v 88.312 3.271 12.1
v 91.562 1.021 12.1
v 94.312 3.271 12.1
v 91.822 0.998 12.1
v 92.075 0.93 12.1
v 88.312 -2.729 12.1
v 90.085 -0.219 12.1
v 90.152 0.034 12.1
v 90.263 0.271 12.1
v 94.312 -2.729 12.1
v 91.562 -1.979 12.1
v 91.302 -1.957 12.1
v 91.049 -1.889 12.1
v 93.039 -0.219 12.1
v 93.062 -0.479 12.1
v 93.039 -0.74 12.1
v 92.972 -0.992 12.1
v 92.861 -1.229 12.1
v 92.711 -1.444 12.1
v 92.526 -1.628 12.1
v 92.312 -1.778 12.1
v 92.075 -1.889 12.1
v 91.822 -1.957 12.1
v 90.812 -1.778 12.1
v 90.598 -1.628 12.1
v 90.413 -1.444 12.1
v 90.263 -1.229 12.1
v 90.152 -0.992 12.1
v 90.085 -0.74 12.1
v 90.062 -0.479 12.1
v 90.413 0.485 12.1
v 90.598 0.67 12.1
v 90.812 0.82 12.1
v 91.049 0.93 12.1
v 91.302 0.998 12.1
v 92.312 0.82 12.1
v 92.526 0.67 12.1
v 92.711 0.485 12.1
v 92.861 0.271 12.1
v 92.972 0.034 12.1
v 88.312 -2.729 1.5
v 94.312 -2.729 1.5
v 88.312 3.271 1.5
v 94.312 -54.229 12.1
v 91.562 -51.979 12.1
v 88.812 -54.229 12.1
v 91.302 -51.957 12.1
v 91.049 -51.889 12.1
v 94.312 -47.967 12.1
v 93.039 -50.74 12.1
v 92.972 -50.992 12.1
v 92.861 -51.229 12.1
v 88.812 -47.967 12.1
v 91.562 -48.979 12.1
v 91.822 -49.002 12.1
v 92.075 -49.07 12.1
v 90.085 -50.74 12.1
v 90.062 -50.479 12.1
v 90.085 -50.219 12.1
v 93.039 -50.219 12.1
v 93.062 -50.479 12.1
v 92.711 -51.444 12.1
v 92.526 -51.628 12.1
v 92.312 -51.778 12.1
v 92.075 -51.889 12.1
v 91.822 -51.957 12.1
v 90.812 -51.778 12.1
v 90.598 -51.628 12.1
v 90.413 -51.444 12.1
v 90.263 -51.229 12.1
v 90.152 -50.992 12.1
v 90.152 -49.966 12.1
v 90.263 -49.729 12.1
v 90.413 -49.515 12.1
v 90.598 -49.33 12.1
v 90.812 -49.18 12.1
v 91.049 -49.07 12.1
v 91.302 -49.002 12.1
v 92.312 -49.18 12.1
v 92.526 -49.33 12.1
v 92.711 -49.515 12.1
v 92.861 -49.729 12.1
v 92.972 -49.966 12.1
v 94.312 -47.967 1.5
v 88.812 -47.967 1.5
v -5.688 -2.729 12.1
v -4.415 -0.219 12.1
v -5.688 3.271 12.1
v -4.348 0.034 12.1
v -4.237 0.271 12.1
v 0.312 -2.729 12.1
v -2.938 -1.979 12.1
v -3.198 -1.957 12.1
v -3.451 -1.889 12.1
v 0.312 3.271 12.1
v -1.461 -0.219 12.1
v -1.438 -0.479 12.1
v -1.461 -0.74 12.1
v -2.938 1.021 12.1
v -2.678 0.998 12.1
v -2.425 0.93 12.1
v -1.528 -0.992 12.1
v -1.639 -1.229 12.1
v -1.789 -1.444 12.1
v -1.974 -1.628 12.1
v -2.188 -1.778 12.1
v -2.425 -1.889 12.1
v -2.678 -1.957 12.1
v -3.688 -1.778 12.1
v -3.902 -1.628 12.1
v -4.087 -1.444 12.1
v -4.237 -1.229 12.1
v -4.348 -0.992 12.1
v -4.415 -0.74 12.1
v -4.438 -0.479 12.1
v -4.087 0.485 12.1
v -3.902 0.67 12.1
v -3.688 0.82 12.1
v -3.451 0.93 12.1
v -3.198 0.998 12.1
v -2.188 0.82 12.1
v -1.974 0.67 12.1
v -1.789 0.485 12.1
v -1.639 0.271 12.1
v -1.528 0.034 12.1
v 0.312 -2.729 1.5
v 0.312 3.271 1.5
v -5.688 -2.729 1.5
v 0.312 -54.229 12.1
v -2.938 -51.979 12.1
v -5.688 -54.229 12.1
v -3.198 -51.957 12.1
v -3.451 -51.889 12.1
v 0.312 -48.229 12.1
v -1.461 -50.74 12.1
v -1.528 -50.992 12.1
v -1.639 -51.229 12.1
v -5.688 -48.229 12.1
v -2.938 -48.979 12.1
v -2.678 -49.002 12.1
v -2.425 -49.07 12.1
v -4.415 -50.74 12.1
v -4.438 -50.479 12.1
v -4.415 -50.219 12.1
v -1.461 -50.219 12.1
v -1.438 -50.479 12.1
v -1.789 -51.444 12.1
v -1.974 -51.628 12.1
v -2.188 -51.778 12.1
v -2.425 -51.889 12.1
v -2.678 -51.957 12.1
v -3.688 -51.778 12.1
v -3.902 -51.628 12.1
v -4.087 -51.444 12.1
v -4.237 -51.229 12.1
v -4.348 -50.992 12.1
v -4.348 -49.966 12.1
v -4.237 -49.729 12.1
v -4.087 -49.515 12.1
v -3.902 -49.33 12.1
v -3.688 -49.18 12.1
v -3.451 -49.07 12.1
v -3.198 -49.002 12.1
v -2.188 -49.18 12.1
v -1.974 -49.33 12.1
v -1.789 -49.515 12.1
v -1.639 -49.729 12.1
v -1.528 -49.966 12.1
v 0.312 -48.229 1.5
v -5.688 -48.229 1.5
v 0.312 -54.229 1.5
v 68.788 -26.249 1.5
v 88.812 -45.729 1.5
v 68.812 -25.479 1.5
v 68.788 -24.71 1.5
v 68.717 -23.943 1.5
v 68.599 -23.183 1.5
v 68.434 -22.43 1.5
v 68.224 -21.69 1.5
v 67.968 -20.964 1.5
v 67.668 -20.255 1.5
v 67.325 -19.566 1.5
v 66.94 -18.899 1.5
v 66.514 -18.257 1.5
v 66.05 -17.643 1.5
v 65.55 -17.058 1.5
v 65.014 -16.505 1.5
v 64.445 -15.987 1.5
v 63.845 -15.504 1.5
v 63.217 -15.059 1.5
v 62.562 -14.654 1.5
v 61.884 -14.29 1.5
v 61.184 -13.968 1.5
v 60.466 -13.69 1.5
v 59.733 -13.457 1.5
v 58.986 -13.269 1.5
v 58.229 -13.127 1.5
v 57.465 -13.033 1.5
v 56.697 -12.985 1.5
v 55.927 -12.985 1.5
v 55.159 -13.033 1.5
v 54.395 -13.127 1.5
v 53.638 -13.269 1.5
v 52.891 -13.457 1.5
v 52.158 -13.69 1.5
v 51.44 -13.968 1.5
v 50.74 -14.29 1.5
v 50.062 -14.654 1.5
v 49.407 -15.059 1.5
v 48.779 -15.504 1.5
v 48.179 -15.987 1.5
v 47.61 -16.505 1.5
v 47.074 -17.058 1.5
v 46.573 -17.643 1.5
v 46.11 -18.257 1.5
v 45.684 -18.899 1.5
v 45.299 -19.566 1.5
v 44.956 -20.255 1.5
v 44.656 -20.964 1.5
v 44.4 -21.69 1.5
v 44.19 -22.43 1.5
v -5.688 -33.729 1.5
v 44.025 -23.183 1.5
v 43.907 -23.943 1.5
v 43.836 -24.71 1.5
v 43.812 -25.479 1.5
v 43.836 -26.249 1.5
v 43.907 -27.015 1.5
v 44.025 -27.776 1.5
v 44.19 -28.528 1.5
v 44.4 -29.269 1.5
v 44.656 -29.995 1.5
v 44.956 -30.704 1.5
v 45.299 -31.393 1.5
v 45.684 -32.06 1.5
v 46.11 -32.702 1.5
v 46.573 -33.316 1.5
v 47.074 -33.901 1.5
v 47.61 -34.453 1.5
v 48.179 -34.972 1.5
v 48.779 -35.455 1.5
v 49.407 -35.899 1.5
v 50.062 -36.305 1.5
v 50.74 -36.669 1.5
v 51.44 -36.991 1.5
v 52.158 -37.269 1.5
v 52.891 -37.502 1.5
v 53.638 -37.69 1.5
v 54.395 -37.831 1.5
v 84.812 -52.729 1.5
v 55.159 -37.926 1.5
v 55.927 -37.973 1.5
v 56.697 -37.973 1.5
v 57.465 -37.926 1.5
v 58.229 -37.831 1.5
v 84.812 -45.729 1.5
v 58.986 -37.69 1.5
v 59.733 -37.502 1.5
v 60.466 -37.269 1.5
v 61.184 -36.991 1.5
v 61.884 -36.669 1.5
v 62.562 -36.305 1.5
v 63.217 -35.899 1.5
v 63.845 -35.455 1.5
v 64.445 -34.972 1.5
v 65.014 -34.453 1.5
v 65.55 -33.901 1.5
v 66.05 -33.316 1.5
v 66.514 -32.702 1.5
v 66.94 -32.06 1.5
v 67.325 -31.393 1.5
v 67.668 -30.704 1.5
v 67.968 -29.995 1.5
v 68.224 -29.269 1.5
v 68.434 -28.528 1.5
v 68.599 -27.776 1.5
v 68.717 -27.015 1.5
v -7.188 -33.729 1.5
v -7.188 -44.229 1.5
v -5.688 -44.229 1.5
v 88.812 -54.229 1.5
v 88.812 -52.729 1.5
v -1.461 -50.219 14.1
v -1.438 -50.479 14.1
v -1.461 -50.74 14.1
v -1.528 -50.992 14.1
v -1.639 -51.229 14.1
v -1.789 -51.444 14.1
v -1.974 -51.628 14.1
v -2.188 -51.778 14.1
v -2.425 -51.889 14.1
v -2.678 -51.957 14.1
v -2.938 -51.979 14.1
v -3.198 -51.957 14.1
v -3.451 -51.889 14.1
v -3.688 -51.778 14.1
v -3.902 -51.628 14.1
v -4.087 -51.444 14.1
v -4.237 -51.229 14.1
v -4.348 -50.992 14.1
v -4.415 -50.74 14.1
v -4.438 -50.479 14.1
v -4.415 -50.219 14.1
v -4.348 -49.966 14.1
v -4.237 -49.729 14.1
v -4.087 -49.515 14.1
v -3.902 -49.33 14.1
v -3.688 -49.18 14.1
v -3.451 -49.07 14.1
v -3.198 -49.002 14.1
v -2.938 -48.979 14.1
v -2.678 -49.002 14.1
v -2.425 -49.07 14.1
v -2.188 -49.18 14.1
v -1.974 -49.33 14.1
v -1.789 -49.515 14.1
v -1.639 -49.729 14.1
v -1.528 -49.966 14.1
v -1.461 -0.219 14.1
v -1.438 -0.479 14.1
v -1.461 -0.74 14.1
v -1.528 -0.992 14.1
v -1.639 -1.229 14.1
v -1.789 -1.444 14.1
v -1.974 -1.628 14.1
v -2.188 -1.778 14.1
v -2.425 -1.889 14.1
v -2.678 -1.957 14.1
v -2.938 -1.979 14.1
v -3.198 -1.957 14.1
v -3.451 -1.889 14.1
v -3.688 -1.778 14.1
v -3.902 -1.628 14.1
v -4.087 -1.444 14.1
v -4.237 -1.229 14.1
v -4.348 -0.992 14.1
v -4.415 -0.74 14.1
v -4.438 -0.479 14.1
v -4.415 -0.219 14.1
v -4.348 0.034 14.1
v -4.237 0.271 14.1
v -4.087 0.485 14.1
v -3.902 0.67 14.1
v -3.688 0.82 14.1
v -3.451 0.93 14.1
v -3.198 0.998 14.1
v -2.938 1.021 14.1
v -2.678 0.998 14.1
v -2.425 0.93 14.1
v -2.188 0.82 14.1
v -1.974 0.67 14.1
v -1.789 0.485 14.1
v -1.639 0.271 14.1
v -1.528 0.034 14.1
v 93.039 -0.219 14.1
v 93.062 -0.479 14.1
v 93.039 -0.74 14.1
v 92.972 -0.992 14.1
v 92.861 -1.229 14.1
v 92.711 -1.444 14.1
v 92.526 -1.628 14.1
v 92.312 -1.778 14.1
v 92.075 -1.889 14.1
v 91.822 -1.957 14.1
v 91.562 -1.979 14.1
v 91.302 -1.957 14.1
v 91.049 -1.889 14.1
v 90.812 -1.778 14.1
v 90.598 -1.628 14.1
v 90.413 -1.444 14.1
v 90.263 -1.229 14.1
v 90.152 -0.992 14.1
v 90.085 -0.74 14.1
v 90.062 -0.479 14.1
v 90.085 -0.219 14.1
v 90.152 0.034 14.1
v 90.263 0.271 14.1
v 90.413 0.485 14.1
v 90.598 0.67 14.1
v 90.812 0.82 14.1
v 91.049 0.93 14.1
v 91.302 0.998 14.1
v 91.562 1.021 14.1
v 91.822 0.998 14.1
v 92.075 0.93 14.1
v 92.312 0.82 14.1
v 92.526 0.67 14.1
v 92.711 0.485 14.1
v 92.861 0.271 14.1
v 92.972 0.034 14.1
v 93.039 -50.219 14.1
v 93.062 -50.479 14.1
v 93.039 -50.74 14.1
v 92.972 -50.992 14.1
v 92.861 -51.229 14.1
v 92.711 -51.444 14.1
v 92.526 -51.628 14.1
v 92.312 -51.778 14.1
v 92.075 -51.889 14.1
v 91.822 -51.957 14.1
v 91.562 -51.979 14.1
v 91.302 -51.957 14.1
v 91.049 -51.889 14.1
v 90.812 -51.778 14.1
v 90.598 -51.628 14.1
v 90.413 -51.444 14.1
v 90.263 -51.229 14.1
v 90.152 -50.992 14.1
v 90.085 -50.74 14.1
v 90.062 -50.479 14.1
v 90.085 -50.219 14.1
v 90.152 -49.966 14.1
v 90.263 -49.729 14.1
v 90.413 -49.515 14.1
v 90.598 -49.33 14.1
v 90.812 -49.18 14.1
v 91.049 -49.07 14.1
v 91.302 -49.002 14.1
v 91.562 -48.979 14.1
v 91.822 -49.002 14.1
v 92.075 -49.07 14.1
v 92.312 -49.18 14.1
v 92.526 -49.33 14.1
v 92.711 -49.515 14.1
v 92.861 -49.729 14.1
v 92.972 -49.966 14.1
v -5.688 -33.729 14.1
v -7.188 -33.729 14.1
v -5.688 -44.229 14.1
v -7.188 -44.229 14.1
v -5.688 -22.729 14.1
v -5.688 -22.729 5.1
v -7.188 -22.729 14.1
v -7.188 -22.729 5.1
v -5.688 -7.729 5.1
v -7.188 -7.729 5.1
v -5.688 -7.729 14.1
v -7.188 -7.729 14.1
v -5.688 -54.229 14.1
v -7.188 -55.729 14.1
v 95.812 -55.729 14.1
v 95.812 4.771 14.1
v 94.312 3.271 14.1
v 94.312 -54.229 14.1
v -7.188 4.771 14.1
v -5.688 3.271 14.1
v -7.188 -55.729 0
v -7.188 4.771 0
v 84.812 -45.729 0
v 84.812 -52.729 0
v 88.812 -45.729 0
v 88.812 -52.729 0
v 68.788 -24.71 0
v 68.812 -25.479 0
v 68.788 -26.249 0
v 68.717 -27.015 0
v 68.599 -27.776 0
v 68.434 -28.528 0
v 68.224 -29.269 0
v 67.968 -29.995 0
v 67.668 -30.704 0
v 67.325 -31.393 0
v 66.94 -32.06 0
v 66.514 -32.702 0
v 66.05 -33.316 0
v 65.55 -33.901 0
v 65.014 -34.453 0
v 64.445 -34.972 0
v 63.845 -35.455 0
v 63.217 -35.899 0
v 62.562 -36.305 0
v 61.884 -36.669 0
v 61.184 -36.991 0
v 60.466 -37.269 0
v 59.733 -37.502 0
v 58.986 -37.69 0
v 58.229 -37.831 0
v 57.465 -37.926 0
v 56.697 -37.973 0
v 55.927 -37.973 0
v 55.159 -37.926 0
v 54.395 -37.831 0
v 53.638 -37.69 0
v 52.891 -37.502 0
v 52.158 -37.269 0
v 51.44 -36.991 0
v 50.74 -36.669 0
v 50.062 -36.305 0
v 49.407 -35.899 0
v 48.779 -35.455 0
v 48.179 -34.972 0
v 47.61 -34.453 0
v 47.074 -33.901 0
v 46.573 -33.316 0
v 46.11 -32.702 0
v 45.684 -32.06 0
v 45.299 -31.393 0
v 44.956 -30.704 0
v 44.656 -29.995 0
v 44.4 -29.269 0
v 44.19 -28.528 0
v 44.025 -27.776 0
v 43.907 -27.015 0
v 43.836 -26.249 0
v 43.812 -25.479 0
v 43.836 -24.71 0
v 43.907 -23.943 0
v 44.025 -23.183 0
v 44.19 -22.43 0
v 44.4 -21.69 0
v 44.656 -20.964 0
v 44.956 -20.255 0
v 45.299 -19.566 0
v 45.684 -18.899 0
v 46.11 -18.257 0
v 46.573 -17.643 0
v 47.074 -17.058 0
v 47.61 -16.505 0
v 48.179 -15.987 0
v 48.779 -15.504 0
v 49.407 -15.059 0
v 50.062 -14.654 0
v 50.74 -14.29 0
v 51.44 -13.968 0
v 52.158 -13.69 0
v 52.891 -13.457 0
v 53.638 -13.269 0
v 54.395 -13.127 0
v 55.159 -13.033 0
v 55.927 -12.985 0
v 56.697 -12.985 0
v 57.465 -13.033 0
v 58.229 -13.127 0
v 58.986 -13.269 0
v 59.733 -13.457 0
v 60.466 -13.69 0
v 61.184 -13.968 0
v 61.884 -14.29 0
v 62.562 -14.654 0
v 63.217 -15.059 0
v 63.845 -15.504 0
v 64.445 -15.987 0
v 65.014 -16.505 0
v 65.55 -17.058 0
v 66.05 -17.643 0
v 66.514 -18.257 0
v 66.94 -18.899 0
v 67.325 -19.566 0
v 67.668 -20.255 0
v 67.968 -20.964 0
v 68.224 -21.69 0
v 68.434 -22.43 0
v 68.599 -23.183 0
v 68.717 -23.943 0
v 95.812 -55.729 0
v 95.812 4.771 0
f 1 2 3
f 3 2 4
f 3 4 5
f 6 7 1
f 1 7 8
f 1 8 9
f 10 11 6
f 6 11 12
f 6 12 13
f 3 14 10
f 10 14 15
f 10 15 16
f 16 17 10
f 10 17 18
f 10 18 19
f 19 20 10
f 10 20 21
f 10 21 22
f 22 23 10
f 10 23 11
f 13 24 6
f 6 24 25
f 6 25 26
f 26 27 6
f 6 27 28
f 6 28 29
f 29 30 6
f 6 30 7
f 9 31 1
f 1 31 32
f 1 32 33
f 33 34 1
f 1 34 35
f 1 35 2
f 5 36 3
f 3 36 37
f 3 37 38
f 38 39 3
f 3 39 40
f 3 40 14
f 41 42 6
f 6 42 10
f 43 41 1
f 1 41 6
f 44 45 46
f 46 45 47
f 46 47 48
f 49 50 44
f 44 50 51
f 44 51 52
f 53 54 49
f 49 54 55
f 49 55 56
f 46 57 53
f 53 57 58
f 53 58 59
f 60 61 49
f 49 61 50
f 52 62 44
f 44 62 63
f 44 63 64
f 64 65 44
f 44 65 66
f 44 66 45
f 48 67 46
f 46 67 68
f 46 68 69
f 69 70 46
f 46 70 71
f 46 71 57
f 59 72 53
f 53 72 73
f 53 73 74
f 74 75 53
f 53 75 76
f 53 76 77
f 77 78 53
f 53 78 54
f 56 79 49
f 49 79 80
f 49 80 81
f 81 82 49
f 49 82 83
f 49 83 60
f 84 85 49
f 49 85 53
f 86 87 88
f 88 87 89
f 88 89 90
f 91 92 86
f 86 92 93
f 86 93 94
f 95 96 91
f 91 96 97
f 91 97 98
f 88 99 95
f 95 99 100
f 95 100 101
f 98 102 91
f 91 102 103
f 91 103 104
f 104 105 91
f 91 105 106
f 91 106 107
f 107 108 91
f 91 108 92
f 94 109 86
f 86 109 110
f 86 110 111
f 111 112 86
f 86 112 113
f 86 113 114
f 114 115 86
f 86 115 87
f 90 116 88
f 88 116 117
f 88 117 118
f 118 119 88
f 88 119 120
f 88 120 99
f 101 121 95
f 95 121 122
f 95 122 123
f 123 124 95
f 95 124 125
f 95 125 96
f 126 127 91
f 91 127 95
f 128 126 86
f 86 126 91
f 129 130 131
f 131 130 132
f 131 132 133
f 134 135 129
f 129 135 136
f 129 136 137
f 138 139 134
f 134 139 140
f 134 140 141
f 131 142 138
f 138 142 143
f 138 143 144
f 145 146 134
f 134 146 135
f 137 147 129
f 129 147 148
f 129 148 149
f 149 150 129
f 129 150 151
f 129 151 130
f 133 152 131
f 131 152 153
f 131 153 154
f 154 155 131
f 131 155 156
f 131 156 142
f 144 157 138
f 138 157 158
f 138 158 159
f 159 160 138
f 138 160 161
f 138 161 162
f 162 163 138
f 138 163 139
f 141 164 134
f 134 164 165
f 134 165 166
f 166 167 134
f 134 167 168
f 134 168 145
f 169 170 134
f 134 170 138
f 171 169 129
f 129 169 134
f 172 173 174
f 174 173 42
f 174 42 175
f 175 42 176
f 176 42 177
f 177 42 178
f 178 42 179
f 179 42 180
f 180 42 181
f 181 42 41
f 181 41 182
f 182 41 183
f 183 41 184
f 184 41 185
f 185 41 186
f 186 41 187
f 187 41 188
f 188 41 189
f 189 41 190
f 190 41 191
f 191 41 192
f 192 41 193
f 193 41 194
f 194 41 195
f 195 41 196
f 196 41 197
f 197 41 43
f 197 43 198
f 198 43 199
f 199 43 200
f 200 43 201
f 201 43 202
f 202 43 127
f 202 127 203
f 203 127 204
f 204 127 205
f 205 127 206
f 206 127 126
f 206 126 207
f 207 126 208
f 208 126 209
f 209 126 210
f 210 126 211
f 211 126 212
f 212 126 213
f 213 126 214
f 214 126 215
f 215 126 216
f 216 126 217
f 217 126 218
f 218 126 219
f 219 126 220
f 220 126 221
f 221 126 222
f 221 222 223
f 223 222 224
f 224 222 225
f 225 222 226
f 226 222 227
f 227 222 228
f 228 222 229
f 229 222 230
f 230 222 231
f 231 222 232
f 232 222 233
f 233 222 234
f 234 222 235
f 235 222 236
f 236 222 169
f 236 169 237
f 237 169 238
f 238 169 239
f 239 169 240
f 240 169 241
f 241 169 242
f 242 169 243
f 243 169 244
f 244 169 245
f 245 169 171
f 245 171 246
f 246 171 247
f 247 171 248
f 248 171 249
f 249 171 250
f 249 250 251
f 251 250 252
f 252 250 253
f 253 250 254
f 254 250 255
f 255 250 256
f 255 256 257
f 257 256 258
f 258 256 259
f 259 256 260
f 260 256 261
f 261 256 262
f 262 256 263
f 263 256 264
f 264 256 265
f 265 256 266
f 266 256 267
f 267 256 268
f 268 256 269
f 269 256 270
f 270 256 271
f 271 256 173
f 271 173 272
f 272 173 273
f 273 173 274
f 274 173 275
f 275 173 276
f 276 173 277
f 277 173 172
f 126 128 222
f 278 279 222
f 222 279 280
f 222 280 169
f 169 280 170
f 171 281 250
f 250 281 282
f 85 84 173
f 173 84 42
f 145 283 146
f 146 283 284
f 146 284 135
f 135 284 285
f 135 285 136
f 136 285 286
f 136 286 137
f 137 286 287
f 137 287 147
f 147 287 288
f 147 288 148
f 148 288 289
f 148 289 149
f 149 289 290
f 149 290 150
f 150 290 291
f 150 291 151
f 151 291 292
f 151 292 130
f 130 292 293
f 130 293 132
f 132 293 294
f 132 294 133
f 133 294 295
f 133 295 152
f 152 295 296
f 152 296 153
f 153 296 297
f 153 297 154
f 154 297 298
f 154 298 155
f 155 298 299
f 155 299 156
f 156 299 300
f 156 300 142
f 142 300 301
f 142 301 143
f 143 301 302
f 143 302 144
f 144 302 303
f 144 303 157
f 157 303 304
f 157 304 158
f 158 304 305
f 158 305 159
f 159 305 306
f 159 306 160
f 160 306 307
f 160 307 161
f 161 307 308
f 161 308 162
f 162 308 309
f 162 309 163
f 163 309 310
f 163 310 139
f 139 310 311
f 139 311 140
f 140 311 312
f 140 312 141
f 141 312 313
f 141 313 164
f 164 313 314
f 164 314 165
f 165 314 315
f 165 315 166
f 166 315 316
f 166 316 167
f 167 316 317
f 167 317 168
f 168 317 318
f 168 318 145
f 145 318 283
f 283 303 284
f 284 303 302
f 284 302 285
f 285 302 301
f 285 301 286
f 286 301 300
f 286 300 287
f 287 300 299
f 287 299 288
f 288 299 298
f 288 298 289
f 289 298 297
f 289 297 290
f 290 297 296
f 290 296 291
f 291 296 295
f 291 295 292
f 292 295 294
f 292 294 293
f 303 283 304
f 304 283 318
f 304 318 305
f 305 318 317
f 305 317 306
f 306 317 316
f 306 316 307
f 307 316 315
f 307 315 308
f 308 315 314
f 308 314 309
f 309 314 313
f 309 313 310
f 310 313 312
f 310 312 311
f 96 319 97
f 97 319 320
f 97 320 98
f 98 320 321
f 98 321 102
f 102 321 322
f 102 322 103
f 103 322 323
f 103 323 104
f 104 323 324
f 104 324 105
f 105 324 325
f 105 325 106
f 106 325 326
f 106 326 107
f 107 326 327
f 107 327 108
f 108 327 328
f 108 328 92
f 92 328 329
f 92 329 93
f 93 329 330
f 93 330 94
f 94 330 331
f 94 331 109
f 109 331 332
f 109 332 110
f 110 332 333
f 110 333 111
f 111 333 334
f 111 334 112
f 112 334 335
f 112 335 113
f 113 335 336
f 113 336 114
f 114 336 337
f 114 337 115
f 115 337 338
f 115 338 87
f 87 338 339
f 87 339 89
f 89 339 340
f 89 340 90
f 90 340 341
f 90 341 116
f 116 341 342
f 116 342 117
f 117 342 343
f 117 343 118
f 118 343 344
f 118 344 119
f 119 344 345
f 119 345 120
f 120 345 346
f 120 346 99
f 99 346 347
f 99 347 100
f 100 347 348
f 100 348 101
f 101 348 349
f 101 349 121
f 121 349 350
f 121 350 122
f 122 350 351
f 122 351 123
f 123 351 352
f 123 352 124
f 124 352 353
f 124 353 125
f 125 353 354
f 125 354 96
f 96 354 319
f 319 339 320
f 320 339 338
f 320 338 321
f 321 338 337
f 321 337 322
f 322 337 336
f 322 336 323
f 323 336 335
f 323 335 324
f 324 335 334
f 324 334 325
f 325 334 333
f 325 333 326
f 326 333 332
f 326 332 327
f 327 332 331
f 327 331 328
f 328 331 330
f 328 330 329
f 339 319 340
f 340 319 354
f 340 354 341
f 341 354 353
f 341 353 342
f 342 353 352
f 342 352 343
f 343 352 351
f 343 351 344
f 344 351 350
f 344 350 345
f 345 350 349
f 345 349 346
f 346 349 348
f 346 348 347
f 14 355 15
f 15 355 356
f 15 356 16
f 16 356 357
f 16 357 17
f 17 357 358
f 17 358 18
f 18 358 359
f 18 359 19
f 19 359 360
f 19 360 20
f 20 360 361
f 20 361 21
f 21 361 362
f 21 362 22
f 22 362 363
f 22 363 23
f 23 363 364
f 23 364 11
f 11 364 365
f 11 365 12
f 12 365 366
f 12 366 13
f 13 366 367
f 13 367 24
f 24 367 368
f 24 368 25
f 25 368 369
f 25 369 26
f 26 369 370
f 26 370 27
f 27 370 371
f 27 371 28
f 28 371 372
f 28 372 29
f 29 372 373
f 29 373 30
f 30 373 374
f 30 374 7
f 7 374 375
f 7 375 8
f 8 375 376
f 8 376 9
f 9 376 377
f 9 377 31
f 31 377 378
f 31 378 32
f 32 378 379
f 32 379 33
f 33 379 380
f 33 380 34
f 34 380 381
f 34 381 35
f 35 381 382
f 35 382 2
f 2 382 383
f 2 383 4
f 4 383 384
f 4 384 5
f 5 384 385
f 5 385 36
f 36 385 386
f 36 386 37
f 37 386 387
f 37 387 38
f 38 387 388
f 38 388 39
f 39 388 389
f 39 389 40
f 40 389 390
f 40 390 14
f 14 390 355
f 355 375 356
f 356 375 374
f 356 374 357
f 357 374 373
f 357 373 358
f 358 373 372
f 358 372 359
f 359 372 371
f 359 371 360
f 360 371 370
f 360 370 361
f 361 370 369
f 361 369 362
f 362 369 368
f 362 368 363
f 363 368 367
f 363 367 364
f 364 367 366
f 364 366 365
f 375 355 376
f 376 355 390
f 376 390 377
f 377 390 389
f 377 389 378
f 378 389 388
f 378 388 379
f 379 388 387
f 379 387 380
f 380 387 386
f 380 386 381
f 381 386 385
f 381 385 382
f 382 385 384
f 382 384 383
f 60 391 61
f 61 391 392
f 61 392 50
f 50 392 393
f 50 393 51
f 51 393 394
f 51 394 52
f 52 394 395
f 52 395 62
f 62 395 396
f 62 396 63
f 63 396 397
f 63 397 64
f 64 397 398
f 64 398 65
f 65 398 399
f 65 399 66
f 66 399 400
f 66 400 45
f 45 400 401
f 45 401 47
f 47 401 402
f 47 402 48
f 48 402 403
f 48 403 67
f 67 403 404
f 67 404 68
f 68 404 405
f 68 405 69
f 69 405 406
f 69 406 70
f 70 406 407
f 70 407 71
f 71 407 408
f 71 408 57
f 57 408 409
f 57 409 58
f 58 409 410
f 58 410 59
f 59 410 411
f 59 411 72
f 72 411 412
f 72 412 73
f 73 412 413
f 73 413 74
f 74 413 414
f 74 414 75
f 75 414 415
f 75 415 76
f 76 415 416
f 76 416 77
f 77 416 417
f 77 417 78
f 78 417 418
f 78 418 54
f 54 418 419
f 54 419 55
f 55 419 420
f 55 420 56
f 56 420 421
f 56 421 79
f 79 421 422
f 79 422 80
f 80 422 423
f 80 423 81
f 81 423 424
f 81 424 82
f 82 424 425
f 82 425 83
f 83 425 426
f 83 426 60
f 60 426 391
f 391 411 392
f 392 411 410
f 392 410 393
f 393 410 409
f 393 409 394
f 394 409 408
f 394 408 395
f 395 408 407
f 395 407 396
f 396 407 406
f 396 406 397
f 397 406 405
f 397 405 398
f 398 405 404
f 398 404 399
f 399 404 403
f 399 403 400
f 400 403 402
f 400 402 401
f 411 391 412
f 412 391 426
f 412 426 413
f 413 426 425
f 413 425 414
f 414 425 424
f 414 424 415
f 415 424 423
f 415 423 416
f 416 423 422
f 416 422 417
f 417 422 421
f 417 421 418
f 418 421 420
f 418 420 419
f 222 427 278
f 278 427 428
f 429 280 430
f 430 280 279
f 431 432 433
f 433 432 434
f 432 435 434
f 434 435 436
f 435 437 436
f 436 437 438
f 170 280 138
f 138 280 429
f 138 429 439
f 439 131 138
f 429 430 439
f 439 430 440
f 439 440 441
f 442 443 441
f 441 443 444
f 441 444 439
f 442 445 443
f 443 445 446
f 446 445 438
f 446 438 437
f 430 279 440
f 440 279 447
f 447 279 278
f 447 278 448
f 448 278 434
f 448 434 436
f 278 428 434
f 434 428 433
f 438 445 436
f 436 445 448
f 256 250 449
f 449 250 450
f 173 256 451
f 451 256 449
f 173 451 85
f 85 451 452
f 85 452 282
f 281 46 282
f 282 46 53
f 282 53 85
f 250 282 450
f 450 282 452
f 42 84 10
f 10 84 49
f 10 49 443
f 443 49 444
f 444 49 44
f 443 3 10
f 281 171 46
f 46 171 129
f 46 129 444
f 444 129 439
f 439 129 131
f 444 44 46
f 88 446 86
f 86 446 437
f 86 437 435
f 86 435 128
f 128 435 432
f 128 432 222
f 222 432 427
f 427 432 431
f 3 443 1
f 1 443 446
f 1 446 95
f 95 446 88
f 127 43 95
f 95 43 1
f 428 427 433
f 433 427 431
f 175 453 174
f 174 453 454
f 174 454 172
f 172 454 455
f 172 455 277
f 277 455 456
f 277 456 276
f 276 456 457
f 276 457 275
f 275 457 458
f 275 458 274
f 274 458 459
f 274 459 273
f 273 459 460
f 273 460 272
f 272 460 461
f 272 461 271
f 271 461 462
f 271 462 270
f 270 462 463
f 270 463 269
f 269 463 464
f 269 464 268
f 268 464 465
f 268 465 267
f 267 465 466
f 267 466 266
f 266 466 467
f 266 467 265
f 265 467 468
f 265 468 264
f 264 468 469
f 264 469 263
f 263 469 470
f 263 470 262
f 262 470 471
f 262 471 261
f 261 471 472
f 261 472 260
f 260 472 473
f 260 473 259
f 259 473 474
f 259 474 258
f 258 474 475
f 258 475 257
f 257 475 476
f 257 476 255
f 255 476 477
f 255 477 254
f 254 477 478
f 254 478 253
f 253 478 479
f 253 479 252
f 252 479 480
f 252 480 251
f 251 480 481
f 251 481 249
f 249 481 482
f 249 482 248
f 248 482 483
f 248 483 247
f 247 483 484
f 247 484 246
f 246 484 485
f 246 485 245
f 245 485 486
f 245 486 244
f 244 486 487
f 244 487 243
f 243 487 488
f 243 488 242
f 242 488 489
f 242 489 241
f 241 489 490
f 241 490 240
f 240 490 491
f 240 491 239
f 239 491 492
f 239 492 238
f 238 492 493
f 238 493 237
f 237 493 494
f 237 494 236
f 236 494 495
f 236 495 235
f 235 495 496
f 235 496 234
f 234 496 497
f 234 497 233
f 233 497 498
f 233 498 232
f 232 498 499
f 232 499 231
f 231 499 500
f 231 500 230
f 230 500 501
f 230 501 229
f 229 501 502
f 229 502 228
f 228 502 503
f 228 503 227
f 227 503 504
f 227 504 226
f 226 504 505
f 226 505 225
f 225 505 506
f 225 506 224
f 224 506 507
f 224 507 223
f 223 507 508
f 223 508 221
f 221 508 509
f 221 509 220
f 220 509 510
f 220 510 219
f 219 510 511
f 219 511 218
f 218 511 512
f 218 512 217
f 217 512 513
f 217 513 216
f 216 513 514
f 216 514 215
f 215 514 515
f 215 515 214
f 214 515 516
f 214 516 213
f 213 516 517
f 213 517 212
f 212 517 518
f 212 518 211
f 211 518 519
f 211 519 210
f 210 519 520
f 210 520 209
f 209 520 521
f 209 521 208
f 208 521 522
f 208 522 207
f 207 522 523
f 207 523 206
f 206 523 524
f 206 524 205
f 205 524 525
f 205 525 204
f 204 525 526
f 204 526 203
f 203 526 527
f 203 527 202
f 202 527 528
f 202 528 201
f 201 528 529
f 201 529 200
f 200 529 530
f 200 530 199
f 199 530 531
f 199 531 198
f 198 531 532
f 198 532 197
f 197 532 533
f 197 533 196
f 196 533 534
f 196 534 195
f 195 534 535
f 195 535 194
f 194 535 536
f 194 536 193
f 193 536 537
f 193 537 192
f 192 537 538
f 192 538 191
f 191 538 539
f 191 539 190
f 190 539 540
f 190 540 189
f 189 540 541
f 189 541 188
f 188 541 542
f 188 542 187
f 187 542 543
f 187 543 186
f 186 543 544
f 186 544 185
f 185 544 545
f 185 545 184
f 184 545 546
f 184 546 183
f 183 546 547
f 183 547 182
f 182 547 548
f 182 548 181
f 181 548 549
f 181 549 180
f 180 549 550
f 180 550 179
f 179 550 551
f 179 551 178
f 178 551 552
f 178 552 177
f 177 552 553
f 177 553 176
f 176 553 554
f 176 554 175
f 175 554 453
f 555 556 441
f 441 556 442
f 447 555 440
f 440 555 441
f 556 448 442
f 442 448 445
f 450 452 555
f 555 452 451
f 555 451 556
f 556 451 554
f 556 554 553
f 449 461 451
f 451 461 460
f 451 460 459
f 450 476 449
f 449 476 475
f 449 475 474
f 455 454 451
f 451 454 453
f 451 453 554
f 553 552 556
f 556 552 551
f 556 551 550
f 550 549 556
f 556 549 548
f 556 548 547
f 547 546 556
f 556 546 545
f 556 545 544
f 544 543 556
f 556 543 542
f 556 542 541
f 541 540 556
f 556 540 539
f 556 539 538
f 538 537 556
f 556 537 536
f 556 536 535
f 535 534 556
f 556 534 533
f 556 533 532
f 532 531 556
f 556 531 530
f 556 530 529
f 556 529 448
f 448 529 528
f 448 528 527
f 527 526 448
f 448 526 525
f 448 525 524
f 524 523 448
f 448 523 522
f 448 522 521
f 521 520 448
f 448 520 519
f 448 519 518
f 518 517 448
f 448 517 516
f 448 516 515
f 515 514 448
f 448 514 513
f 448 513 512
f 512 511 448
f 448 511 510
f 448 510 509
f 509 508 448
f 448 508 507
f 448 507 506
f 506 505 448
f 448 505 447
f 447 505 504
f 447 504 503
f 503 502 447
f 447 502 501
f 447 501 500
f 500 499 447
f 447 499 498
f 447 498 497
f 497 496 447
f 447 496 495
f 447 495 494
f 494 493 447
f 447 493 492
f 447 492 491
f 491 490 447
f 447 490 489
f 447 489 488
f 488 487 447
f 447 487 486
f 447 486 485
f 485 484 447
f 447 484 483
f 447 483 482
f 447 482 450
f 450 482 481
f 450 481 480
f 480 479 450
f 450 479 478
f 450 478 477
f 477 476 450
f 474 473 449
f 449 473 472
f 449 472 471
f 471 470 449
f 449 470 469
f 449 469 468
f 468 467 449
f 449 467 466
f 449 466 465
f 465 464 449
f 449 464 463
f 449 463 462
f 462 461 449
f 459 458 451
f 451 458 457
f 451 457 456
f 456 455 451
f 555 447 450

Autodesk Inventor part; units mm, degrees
ref_plane "YZ Plane" through (0, 0, 0) normal (1, 0, 0) x (0, 1, 0)
ref_plane "XZ Plane" through (0, 0, 0) normal (0, 1, 0) x (-1, 0, 0)
ref_plane "XY Plane" through (0, 0, 0) normal (0, 0, 1) x (1, 0, 0)
sketch "Sketch1" plane through (0, 0, 0) normal (0, 0, 1) x (1, 0, 0)
  line L0 (-5.688, 3.2706) -> (94.312, 3.2706)
  line L1 (94.312, 3.2706) -> (94.312, -54.2294)
  line L2 (94.312, -54.2294) -> (-5.688, -54.2294)
  line L3 (-5.688, -54.2294) -> (-5.688, 3.2706)
  line L4 (95.812, 4.7706) -> (-7.188, 4.7706)
  line L5 (-7.188, 4.7706) -> (-7.188, -55.7294)
  line L6 (-7.188, -55.7294) -> (95.812, -55.7294)
  line L7 (95.812, -55.7294) -> (95.812, 4.7706)
  circle A0 centre (56.312, -25.4794) radius 12.5
  point P0 (0, 0)
  dimension "d0" = 100
  dimension "d1" = 57.5
  dimension "d2" = 1.5
  dimension "d3" = 25
  dimension "d4" = 38
extrude "Extrusion1" add sketch "Sketch1" along normal blind 1.5 contours L0 L1 L2 L3 | L7 L6 L5 L4
sketch "Sketch2" plane through (0, 0, 1.5) normal (0, 0, 1) x (1, 0, 0)
  line L0 (95.812, 4.7706) -> (-7.188, 4.7706) projected
  line L1 (-7.188, 4.7706) -> (-7.188, -55.7294) projected
  line L2 (-7.188, -55.7294) -> (95.812, -55.7294) projected
  line L3 (95.812, -55.7294) -> (95.812, 4.7706) projected
  line L4 (-5.688, 3.2706) -> (94.312, 3.2706)
  line L5 (94.312, 3.2706) -> (94.312, -54.2294)
  line L6 (94.312, -54.2294) -> (-5.688, -54.2294)
  line L7 (-5.688, -54.2294) -> (-5.688, 3.2706)
  point P0 (0, 0)
  dimension "d7" = 1.5
extrude "Extrusion2" add sketch "Sketch2" along normal blind 12.6
sketch "Sketch3" plane through (0, 0, 0) normal (0, 0, -1) x (-1, 0, 0)
  line L0 (-84.812, -45.7294) -> (-88.812, -45.7294)
  line L1 (-88.812, -45.7294) -> (-88.812, -52.7294)
  line L2 (-88.812, -52.7294) -> (-84.812, -52.7294)
  line L3 (-84.812, -52.7294) -> (-84.812, -45.7294)
  line L4 (7.188, -55.7294) -> (-95.812, -55.7294) projected
  line L5 (-95.812, -55.7294) -> (-95.812, 4.7706) projected
  point P0 (0, 0)
  dimension "d10" = 3
  dimension "d11" = 7
  dimension "d12" = 4
  dimension "d13" = 10
extrude "Extrusion3" cut sketch "Sketch3" against normal up to next
sketch "Sketch4" plane through (-7.188, -55.7294, 0) normal (-1, 0, 0) x (0, 0, 1)
  line L0 (14.1, 60.5) -> (14.1, 0) projected
  line L1 (14.1, 48) -> (5.1, 48)
  line L2 (5.1, 48) -> (5.1, 33)
  line L3 (5.1, 33) -> (14.1, 33)
  line L4 (14.1, 33) -> (14.1, 48)
  line L5 (0, 60.5) -> (14.1, 60.5) projected
  line L6 (14.1, 11.5) -> (1.5, 11.5)
  line L7 (1.5, 11.5) -> (1.5, 22)
  line L8 (1.5, 22) -> (14.1, 22)
  line L9 (14.1, 22) -> (14.1, 11.5)
  point P0 (0, 55.7294)
  dimension "d16" = 9
  dimension "d18" = 27.5
  dimension "d19" = 12.5
  dimension "d20" = 12.6
  dimension "d21" = 49
  dimension "d22" = 38.5
extrude "Extrusion4" cut sketch "Sketch4" against normal up to surface (1.5 mm away)
sketch "Sketch5" plane through (0, 0, 1.5) normal (0, 0, 1) x (1, 0, 0)
  circle A0 centre (-2.938, -0.4794) radius 1.5
  circle A1 centre (91.562, -0.4794) radius 1.5
  circle A2 centre (-2.938, -50.4794) radius 1.5
  circle A3 centre (91.562, -50.4794) radius 1.5
  line L0 (-5.688, 3.2706) -> (94.312, 3.2706) projected
  line L1 (94.312, -54.2294) -> (-5.688, -54.2294) projected
  line L2 (94.312, 3.2706) -> (94.312, -54.2294) projected
  line L3 (-5.688, -54.2294) -> (-5.688, -44.2294) projected
  line L4 (-5.688, -7.7294) -> (-5.688, 3.2706) projected
  point P0 (0, 0)
  dimension "d25" = 3
  dimension "d26" = 3
  dimension "d27" = 3
  dimension "d28" = 3
  dimension "d31" = 3.75
  dimension "d32" = 3.75
  dimension "d33" = 3.75
  dimension "d34" = 2.75
  dimension "d35" = 2.75
  dimension "d36" = 2.75
  dimension "d37" = 3.75
  dimension "d39" = 2.75
extrude "Extrusion5" add sketch "Sketch5" along normal blind 12.6
sketch "Sketch6" plane through (0, 0, 1.5) normal (0, 0, 1) x (1, 0, 0)
  line L0 (-5.688, 3.2706) -> (-5.688, -33.7294) projected
  line L1 (-5.688, 3.2706) -> (0.312, 3.2706)
  line L2 (0.312, 3.2706) -> (0.312, -2.7294)
  line L3 (0.312, -2.7294) -> (-5.688, -2.7294)
  line L4 (-5.688, -2.7294) -> (-5.688, 3.2706)
  line L5 (94.312, 3.2706) -> (-5.688, 3.2706) projected
  line L6 (94.312, 3.2706) -> (88.312, 3.2706)
  line L7 (88.312, 3.2706) -> (88.312, -2.7294)
  line L8 (88.312, -2.7294) -> (94.312, -2.7294)
  line L9 (94.312, -2.7294) -> (94.312, 3.2706)
  line L10 (-5.688, -54.2294) -> (94.312, -54.2294) projected
  line L11 (88.812, -45.7294) -> (88.812, -52.7294) projected
  line L12 (94.312, -54.2294) -> (88.812, -54.2294)
  line L13 (88.812, -54.2294) -> (88.812, -47.9671)
  line L14 (88.812, -47.9671) -> (94.312, -47.9671)
  line L15 (94.312, -47.9671) -> (94.312, -54.2294)
  line L16 (-5.688, -54.2294) -> (0.312, -54.2294)
  line L17 (0.312, -54.2294) -> (0.312, -48.2294)
  line L18 (0.312, -48.2294) -> (-5.688, -48.2294)
  line L19 (-5.688, -48.2294) -> (-5.688, -54.2294)
  point P0 (0, 0)
  dimension "d42" = 6
  dimension "d43" = 6
  dimension "d44" = 6
  dimension "d45" = 6
  dimension "d46" = 6
  dimension "d47" = 6
extrude "Extrusion6" add sketch "Sketch6" along normal blind 10.6
properties part number "carrier_cmount"
